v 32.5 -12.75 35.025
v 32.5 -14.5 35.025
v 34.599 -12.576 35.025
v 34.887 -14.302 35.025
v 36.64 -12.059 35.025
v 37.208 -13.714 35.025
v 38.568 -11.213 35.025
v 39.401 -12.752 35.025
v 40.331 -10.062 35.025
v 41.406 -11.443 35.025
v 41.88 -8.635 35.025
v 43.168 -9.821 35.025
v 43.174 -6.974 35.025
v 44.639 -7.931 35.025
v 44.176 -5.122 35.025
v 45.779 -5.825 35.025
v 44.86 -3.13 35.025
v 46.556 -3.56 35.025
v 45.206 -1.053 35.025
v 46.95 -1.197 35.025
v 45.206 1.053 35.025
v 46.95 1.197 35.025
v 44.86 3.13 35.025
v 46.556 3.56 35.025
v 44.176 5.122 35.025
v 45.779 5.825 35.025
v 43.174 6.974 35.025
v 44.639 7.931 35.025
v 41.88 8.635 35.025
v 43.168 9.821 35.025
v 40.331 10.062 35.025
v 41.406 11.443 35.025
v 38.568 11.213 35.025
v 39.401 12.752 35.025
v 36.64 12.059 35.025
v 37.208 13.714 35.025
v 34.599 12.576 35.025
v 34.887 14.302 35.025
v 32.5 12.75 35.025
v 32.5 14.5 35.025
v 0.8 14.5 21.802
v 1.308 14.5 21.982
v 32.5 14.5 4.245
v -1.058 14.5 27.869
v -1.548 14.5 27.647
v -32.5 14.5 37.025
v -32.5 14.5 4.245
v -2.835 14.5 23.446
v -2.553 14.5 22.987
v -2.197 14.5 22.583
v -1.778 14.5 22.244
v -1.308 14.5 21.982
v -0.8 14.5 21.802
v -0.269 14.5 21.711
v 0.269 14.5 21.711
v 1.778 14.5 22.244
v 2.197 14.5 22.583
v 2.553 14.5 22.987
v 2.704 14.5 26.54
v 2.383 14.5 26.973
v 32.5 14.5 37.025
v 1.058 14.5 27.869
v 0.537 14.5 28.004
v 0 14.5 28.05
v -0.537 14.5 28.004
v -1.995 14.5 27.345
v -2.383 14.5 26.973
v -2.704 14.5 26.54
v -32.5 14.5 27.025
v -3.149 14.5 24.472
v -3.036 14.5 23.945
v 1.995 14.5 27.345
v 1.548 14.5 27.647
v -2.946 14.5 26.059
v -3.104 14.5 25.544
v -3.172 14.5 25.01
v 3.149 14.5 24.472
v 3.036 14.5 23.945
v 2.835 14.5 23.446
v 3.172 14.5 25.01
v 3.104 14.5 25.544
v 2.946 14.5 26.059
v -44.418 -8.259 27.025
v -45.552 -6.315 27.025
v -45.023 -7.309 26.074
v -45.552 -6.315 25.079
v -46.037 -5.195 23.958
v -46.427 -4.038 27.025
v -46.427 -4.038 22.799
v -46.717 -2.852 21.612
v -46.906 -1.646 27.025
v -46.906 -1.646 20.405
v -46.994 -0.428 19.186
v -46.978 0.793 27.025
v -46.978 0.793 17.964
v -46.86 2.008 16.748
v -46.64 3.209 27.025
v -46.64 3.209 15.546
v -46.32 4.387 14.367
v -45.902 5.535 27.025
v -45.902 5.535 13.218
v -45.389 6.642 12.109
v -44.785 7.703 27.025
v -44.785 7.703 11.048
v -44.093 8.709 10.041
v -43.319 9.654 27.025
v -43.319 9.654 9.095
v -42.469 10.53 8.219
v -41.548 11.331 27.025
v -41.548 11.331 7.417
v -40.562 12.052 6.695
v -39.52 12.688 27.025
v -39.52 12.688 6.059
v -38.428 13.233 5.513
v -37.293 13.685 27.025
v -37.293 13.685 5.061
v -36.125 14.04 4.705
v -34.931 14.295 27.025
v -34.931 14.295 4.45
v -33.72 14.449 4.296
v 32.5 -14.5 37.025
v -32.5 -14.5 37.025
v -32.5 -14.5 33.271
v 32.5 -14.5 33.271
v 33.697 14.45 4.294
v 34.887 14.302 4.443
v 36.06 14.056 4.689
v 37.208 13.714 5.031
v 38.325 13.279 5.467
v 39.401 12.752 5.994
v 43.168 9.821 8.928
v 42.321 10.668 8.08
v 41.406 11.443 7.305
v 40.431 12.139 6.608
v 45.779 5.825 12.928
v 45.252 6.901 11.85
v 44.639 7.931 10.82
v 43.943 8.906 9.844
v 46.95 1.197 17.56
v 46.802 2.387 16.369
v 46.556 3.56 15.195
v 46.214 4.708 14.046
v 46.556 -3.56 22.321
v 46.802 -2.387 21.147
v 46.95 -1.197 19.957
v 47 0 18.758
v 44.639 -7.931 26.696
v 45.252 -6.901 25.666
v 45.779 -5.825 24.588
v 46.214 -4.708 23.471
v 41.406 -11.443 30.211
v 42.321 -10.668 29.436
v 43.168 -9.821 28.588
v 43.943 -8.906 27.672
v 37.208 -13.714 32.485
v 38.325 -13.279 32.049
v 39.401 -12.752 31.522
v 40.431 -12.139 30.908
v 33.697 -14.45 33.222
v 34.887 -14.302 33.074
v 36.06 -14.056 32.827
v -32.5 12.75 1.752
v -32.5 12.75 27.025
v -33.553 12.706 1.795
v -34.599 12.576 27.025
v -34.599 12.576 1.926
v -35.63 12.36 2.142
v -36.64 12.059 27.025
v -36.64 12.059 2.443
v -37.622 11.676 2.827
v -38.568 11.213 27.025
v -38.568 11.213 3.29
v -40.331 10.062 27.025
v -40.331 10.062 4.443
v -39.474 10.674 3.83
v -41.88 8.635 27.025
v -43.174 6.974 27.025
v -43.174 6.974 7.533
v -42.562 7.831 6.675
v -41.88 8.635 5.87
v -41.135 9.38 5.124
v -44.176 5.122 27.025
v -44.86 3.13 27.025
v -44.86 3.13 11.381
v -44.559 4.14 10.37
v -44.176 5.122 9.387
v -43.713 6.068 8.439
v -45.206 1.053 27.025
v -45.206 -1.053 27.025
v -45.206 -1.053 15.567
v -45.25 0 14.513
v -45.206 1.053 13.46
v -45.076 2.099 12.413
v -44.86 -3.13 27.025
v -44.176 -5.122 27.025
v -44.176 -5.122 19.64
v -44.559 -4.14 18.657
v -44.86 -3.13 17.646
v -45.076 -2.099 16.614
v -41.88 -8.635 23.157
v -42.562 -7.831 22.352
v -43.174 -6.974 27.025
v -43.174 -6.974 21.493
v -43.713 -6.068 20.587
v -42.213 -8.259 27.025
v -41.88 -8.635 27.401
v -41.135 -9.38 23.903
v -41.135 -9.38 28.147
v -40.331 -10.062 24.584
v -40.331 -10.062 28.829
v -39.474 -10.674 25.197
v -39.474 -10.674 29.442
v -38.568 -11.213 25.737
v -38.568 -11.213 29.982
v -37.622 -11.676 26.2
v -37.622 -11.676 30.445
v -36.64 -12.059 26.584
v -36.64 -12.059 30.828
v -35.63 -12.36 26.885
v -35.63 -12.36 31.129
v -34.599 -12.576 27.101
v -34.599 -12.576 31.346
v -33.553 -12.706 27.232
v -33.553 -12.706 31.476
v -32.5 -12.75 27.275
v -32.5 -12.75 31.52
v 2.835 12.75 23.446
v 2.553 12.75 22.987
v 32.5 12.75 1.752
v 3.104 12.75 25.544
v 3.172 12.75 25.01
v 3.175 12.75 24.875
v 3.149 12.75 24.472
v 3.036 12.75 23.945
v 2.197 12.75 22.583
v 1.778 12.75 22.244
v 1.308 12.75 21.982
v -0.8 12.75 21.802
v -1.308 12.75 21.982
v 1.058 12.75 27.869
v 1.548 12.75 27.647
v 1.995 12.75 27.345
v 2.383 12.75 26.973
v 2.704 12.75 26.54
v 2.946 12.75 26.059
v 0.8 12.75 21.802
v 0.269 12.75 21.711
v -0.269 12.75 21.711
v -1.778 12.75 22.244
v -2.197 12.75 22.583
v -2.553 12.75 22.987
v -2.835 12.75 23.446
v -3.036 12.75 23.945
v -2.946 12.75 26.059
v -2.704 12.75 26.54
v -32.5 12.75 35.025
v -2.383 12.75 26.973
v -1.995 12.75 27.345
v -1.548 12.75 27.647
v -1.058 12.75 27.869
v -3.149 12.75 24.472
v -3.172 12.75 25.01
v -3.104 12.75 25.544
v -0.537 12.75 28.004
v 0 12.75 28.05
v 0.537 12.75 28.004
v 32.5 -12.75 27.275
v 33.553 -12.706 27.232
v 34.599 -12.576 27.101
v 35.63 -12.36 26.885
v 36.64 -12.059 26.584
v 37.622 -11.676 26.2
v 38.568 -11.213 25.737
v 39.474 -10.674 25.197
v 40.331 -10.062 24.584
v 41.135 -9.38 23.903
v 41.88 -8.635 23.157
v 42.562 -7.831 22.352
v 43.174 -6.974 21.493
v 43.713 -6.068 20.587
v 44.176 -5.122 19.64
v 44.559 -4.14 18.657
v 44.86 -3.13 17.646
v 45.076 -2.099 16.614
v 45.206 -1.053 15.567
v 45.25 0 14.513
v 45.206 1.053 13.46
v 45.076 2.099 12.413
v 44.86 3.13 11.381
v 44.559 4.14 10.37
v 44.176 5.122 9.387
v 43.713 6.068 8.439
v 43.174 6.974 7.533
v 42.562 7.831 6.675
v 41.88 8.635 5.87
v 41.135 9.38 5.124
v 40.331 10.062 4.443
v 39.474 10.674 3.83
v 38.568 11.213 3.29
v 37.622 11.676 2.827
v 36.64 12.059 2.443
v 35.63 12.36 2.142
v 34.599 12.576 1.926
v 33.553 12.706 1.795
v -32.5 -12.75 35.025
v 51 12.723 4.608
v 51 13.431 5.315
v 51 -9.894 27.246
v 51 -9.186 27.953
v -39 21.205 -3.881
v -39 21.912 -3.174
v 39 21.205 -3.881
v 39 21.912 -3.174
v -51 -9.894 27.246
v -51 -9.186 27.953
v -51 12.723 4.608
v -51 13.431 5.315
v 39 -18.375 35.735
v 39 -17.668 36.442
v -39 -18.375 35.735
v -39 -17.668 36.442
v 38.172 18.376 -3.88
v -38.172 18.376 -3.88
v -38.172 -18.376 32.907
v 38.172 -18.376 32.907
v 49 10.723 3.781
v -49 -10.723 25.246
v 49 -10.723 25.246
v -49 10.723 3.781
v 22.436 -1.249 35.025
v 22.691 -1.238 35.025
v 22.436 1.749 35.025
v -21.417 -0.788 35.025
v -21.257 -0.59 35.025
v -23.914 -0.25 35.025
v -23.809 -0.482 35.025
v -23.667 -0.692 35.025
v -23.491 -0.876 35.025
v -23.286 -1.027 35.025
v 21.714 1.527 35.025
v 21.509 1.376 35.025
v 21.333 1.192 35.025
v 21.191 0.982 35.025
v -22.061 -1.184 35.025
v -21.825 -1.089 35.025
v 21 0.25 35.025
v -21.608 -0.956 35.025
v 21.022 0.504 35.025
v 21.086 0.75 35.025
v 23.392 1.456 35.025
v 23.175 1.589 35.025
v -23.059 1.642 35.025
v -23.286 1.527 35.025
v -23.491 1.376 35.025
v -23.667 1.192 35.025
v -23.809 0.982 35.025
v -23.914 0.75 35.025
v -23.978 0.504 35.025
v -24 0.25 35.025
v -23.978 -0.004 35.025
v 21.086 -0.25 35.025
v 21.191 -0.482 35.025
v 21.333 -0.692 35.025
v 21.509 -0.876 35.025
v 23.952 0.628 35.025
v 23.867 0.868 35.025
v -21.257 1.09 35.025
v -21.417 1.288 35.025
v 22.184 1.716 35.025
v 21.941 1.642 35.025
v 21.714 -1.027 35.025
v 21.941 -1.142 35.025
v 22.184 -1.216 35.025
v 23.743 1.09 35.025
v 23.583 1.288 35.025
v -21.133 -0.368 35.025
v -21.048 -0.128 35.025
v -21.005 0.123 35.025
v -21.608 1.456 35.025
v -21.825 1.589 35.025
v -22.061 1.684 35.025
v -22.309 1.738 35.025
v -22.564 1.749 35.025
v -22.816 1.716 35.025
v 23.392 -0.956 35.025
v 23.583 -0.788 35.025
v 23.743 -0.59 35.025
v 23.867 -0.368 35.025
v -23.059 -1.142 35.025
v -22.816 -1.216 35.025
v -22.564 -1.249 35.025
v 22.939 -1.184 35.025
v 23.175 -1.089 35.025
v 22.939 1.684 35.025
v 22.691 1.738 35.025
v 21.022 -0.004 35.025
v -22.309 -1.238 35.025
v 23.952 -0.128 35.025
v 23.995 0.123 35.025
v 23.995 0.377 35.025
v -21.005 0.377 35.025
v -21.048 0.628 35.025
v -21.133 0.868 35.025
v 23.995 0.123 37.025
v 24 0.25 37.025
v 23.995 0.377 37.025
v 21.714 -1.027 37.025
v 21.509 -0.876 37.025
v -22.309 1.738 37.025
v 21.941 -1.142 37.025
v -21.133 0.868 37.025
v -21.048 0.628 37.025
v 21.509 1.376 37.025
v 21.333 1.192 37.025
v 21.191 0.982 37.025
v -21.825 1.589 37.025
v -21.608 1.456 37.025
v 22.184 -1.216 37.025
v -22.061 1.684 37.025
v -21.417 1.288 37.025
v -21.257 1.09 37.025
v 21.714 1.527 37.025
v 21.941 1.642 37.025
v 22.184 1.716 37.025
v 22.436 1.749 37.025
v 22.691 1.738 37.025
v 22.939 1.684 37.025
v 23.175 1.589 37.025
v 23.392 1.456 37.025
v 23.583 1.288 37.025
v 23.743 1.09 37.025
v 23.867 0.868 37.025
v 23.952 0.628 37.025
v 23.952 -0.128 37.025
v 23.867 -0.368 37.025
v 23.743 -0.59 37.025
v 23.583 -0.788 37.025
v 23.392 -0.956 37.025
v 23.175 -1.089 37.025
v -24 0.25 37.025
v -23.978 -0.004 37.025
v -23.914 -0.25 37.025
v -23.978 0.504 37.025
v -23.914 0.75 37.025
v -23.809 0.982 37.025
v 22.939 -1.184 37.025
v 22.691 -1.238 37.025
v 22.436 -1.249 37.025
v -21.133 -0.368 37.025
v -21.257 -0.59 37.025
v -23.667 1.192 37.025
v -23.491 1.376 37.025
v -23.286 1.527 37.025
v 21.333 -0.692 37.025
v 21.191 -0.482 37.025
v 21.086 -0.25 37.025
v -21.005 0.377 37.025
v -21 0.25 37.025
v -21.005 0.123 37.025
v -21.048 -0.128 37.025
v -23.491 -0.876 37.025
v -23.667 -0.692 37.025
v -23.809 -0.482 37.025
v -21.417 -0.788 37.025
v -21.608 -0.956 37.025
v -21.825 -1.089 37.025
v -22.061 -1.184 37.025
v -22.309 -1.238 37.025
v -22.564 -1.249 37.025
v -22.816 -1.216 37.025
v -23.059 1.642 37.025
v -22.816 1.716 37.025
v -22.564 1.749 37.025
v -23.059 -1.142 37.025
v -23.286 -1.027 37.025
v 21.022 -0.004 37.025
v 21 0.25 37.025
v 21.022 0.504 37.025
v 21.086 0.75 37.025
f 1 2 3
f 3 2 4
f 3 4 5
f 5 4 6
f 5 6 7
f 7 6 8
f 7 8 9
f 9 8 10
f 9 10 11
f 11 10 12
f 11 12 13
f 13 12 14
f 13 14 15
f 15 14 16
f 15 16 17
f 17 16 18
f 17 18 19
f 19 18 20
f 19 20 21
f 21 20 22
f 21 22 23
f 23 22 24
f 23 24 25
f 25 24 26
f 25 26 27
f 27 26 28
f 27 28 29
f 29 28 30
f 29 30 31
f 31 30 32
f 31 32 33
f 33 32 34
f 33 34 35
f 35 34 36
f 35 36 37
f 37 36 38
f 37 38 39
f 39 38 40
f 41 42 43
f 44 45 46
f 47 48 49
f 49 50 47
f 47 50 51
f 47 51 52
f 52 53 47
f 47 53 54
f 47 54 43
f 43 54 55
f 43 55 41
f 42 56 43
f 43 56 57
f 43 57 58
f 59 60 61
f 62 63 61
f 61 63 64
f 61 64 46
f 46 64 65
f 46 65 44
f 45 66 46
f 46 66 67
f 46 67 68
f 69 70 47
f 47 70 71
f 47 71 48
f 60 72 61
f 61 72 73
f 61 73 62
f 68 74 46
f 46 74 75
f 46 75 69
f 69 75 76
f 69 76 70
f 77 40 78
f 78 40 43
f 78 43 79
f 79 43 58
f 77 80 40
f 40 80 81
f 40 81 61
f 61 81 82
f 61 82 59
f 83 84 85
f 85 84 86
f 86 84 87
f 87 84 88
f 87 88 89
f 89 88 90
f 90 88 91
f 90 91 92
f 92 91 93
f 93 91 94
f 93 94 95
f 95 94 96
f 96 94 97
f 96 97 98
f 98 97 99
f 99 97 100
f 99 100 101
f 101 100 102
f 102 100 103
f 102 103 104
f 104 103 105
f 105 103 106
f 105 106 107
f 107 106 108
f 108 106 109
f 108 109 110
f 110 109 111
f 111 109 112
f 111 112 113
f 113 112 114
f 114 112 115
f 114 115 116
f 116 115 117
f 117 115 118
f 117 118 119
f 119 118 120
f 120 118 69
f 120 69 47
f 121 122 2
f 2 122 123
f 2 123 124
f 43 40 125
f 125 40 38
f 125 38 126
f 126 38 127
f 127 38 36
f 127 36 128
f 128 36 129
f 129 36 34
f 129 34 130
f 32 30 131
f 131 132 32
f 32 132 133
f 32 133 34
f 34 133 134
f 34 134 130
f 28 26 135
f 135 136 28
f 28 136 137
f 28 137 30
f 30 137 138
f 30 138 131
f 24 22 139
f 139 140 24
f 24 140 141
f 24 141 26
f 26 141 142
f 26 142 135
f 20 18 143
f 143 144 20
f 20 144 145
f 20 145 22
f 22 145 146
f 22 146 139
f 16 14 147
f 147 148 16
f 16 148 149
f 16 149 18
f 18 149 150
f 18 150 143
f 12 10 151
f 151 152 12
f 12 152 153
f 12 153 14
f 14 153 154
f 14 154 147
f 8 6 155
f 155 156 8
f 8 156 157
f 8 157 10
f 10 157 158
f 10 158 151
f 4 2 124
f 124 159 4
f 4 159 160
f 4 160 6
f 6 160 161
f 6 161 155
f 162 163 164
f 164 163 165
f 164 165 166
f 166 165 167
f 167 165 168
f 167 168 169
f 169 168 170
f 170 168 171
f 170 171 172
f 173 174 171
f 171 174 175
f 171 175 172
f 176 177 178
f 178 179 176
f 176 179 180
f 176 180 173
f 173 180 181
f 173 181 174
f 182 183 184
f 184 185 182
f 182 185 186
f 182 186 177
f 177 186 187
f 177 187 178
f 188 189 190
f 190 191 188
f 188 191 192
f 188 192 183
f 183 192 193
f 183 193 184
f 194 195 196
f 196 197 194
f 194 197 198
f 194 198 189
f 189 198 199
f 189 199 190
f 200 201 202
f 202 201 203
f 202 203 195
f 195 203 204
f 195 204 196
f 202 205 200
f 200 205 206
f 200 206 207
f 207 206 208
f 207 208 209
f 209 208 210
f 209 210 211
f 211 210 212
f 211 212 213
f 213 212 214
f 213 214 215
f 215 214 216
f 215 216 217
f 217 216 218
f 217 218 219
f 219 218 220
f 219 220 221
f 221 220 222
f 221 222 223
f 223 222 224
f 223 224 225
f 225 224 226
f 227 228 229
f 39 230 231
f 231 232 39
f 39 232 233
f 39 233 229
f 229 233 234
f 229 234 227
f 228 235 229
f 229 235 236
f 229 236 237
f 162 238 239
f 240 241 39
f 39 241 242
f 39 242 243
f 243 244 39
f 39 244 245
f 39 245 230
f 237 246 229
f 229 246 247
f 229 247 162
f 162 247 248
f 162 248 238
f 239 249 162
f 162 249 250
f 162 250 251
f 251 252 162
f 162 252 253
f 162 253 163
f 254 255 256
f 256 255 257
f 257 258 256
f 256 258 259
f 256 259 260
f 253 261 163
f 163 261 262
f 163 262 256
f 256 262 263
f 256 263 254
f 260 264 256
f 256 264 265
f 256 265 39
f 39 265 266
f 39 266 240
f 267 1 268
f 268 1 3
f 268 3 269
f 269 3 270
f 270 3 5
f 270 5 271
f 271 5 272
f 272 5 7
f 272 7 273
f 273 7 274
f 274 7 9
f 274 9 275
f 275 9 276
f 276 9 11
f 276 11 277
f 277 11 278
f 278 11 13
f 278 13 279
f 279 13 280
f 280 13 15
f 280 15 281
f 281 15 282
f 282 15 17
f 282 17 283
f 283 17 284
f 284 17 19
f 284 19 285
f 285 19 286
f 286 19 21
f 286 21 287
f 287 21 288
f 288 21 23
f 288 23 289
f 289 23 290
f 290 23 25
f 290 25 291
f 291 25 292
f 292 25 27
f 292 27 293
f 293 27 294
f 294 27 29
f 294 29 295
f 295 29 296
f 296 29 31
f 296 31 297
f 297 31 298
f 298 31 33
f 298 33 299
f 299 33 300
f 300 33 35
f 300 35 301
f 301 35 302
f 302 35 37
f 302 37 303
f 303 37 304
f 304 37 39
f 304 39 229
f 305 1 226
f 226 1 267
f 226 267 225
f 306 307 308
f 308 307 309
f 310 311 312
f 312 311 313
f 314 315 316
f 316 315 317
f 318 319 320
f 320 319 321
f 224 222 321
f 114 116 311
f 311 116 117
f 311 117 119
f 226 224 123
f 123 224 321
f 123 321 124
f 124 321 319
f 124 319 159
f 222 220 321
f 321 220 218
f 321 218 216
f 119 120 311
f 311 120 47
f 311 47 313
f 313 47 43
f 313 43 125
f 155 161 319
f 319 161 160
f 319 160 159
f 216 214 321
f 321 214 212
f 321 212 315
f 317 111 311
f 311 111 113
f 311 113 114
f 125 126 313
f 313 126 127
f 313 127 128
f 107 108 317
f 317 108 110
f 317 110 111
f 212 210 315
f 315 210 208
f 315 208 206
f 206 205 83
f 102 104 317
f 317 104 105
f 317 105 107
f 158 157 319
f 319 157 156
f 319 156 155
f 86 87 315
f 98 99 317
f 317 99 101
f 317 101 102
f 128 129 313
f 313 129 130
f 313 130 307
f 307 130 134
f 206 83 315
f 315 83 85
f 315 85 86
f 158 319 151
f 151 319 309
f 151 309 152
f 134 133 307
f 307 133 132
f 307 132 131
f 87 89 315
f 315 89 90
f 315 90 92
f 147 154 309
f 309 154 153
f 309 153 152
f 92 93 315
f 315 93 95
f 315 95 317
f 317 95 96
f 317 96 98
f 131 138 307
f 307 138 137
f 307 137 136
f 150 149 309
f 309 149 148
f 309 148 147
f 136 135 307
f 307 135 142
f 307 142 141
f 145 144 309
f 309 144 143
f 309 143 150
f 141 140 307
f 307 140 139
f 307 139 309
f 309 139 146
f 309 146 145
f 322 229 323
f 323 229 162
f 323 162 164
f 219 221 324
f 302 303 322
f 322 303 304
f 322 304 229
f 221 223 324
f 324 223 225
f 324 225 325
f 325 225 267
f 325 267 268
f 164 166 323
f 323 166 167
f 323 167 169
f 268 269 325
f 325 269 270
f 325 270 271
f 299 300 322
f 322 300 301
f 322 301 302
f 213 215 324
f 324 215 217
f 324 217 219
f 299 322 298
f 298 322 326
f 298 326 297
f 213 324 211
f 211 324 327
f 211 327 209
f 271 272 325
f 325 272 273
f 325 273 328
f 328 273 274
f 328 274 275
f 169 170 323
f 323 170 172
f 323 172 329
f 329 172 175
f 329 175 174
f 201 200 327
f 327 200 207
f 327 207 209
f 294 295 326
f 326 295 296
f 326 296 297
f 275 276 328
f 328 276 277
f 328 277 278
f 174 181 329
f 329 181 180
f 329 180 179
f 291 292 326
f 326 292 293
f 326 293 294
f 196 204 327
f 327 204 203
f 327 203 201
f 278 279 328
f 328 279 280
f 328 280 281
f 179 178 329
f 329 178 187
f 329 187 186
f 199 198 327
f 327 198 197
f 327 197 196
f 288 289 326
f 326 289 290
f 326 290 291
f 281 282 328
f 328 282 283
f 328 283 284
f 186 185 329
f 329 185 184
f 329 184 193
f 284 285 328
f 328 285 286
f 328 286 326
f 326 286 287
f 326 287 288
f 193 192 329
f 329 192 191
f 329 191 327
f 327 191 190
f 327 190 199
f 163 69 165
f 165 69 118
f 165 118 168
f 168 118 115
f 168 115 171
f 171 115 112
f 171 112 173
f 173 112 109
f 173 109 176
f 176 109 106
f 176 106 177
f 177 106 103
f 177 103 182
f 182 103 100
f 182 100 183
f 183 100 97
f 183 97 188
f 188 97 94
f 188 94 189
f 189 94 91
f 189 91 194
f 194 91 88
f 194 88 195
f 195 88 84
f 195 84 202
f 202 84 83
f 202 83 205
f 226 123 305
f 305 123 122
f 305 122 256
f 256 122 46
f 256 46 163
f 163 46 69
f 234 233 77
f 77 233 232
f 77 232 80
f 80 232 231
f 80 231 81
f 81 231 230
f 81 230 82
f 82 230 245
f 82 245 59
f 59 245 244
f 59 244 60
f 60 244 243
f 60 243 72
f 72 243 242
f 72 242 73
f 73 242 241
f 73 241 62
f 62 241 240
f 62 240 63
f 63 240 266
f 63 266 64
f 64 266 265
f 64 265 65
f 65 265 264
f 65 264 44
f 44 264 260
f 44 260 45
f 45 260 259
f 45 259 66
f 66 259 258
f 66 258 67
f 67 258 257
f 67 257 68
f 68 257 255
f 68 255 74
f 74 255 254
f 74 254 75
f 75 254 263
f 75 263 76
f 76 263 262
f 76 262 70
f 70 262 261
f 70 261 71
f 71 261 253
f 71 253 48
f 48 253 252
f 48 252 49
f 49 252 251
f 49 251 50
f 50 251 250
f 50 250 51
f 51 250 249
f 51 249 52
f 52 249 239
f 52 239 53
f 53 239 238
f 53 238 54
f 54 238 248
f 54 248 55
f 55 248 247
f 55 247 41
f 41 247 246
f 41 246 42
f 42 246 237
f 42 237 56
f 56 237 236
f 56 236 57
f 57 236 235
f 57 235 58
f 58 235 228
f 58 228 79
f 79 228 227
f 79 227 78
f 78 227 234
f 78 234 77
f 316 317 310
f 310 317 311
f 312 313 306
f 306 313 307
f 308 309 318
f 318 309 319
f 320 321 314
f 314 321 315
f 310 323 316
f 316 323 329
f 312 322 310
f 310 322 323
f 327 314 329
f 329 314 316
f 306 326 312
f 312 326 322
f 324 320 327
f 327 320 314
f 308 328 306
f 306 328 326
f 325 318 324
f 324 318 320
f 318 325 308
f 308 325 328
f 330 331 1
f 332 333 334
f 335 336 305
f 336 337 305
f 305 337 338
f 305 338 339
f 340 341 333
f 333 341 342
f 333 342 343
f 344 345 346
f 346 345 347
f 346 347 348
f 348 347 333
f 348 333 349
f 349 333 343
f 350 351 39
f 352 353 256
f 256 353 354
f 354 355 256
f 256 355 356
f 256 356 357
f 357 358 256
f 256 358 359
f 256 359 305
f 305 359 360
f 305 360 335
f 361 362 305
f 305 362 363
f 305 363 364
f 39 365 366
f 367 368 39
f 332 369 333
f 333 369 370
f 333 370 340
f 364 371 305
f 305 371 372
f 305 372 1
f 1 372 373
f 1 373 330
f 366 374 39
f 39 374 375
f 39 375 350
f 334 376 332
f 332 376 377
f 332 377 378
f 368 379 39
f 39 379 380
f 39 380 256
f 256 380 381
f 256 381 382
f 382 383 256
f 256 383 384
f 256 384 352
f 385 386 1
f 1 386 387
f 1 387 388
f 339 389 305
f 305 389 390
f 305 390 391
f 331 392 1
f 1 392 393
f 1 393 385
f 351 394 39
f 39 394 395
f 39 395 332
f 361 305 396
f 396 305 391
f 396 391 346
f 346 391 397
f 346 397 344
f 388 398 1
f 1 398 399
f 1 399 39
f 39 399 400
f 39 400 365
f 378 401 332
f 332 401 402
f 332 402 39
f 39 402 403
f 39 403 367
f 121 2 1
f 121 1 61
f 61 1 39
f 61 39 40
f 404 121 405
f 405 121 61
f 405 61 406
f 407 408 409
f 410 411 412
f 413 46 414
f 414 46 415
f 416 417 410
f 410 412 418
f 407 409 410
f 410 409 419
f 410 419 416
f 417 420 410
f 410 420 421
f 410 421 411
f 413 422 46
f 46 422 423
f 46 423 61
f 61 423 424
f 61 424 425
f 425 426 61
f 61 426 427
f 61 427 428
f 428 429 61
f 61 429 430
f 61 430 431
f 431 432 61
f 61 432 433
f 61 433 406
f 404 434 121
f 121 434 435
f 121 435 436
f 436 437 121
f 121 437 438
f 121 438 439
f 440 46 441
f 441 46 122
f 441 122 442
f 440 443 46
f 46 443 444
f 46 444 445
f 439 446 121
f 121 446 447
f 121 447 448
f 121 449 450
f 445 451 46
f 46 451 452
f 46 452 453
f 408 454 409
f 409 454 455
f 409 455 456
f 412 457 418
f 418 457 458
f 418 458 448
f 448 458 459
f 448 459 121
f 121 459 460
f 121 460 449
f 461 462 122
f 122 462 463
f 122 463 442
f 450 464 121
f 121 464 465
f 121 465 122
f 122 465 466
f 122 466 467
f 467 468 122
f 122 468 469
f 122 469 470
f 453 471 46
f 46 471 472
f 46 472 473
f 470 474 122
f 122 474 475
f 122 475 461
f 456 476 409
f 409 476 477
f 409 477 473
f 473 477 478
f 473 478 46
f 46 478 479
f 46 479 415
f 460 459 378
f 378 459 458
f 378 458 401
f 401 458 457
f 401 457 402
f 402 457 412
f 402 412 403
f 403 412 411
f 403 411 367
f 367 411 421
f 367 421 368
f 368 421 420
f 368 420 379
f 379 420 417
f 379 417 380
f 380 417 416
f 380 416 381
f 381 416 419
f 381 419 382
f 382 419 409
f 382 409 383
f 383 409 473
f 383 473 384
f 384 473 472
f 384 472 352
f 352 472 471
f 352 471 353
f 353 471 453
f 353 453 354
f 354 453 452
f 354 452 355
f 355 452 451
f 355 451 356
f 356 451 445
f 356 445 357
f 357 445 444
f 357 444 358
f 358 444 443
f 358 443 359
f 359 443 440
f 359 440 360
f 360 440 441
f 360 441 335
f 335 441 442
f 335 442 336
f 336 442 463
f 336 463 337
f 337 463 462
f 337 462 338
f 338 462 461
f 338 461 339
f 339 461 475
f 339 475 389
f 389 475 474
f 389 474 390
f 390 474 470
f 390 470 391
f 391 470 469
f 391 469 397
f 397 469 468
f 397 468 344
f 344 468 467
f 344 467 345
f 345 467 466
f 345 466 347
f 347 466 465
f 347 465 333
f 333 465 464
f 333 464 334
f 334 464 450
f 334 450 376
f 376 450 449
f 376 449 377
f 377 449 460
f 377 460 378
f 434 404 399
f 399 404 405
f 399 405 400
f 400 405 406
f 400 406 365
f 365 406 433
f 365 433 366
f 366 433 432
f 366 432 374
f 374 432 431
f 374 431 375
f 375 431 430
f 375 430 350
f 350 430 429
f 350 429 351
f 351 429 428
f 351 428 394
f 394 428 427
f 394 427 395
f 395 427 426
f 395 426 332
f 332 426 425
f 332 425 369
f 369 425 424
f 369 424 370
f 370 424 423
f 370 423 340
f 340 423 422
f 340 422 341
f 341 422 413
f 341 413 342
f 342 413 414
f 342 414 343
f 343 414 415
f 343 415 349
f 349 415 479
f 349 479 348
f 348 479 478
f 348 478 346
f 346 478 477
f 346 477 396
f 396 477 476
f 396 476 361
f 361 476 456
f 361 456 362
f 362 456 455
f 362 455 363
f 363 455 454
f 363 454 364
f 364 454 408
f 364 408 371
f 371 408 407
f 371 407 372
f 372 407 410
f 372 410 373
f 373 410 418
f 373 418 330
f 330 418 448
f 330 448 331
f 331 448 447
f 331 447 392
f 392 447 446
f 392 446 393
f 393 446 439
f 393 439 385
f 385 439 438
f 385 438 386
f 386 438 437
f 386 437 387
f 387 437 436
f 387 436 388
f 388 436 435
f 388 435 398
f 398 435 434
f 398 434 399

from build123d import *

# Parameters (mm, degrees)
BOSS_EXTRUDE12_DEPTH            = 80
CUT_EXTRUDE10_DEPTH             = 80.5
CUT_EXTRUDE10_DEPTH_BACK        = 15.5
SKETCH37_W                      = 102
SKETCH37_H                      = 56
BOSS_EXTRUDE16_DEPTH            = 3
CUT_EXTRUDE11_DEPTH             = 86.294722428
SKETCH40_W                      = 127.486838651
SKETCH40_H                      = 54.833163407
CUT_EXTRUDE12_DEPTH             = 35.662124955
CUT_EXTRUDE12_DEPTH_BACK        = 1.75
CUT_EXTRUDE14_DEPTH             = 18.5
F_1_4_0_25_DIAMETER_HOLE1_D     = 6.35
F_1_4_0_25_DIAMETER_HOLE1_DEPTH = 5
F_1_4_0_25_DIAMETER_HOLE1_TIP   = 1.907732465
CHAMFER2_SIZE                   = 12
CHAMFER3_SIZE                   = 2
BOSS_EXTRUDE17_START            = -29
SKETCH50_W                      = 65
SKETCH50_H                      = 2
BOSS_EXTRUDE17_DEPTH            = 29
F_3_0MM_DOWEL_HOLE1_D           = 3
F_3_0MM_DOWEL_HOLE1_DEPTH       = 2


with BuildPart() as part:
    # Sketch22 → Boss-Extrude12 (new body)
    with BuildSketch(Plane.XY):
        with BuildLine():
            Line((32.5, -14.5), (-32.5, -14.5))
            ThreePointArc((-32.5, -14.5), (-47, 0), (-32.5, 14.5))
            Line((-32.5, 14.5), (32.5, 14.5))
            ThreePointArc((32.5, 14.5), (47, 0), (32.5, -14.5))
        make_face()
    extrude(amount=BOSS_EXTRUDE12_DEPTH)

    # Sketch35 → Cut-Extrude10 (cut, two sides)
    with BuildSketch(Plane(origin=(-32.5, 0, 0), x_dir=(0, 0, -1), z_dir=(1, 0, 0))) as cut_extrude10_sk:
        Polygon((0, 14.5), (-29.026860374, -14.5), (0, -14.5), align=None)
    extrude(amount=CUT_EXTRUDE10_DEPTH, mode=Mode.SUBTRACT)
    extrude(cut_extrude10_sk.sketch, amount=-CUT_EXTRUDE10_DEPTH_BACK, mode=Mode.SUBTRACT)

    # Sketch37 → Boss-Extrude16 (add)
    with BuildSketch(Plane(origin=(0, 7.256711984, 7.249996893), x_dir=(-1, 0, 0), z_dir=(0, -0.707434022, -0.706779389))):
        with Locations((0, -10.26729429)):
            Rectangle(SKETCH37_W, SKETCH37_H)
    extrude(amount=-BOSS_EXTRUDE16_DEPTH)

    # Sketch38 → Cut-Extrude11 (cut, through all)
    with BuildSketch(Plane.XY.offset(80)):
        with BuildLine():
            Line((-32.5, 12.75), (32.5, 12.75))
            ThreePointArc((32.5, 12.75), (45.25, 0), (32.5, -12.75))
            Line((32.5, -12.75), (-32.5, -12.75))
            ThreePointArc((-32.5, -12.75), (-45.25, 0), (-32.5, 12.75))
        make_face()
    extrude(amount=-CUT_EXTRUDE11_DEPTH, mode=Mode.SUBTRACT)

    # Sketch40 → Cut-Extrude12 (cut, two sides)
    with BuildSketch(Plane(origin=(0, -12.75, 0), x_dir=(1, 0, 0), z_dir=(0, 1, 0))) as cut_extrude12_sk:
        with Locations((5.984726224, -62.441589639)):
            Rectangle(SKETCH40_W, SKETCH40_H)
    extrude(amount=CUT_EXTRUDE12_DEPTH, mode=Mode.SUBTRACT)
    extrude(cut_extrude12_sk.sketch, amount=-CUT_EXTRUDE12_DEPTH_BACK, mode=Mode.SUBTRACT)

    # Sketch42 → Cut-Extrude14 (cut)
    with BuildSketch(Plane.ZY.offset(51)):
        Polygon((35.025007935, 14.5), (27.025007935, 14.5), (27.025007935, -8.259321849), (33.271466325, -14.5), (35.025007935, -14.5), align=None)
    extrude(amount=-CUT_EXTRUDE14_DEPTH, mode=Mode.SUBTRACT)

    # 1/4 (0.25) Diameter Hole1
    with Locations(Plane(origin=(0, 14.5, 0), x_dir=(1, 0, 0), z_dir=(0, 1, 0))):
        with Locations((2.6293e-05, -24.875007935)):
            Hole(F_1_4_0_25_DIAMETER_HOLE1_D / 2, depth=F_1_4_0_25_DIAMETER_HOLE1_DEPTH)
            with Locations((0, 0, -(F_1_4_0_25_DIAMETER_HOLE1_DEPTH + F_1_4_0_25_DIAMETER_HOLE1_TIP / 2))):  # 118° drill point
                Cone(0, F_1_4_0_25_DIAMETER_HOLE1_D / 2, F_1_4_0_25_DIAMETER_HOLE1_TIP, mode=Mode.SUBTRACT)

    # Chamfer2
    chamfer2_edges = [part.edges().sort_by_distance(p)[0] for p in [
        (51, -18.728671856, 35.381751886),
        (51, 20.850973922, -4.234553344),
        (-51, 20.850973922, -4.234553344),
        (-51, -18.728671856, 35.381751886),
    ]]
    chamfer(chamfer2_edges, length=CHAMFER2_SIZE)

    # Chamfer3
    chamfer3_edges = [part.edges().sort_by_distance(p)[0] for p in [
        (-51, 0, 14.513430187),
        (51, 0, 14.513430187),
        (0, -19.789822889, 34.321582802),
        (0, 19.789822889, -5.294722428),
        (-45, -15.549146556, 30.07697867),
        (45, -15.549146556, 30.07697867),
        (45, 15.549146556, -1.050118296),
        (-45, 15.549146556, -1.050118296),
    ]]
    chamfer(chamfer3_edges, length=CHAMFER3_SIZE)

    # Sketch50 → Boss-Extrude17 (add)
    with BuildSketch(Plane(origin=(0, 14.5, 0), x_dir=(1, 0, 0), z_dir=(0, 1, 0)).offset(BOSS_EXTRUDE17_START)):
        with Locations((0, -36.025007935)):
            Rectangle(SKETCH50_W, SKETCH50_H)
    extrude(amount=BOSS_EXTRUDE17_DEPTH)

    # Ø3.0mm Dowel Hole1
    with Locations(Plane(origin=(0, 0, 35.025007935), x_dir=(-1, 0, 0), z_dir=(0, 0, -1))):
        with Locations((-22.500026293, 0.25), (22.499973707, 0.25)):
            Hole(F_3_0MM_DOWEL_HOLE1_D / 2, depth=F_3_0MM_DOWEL_HOLE1_DEPTH)


solid = part.part
